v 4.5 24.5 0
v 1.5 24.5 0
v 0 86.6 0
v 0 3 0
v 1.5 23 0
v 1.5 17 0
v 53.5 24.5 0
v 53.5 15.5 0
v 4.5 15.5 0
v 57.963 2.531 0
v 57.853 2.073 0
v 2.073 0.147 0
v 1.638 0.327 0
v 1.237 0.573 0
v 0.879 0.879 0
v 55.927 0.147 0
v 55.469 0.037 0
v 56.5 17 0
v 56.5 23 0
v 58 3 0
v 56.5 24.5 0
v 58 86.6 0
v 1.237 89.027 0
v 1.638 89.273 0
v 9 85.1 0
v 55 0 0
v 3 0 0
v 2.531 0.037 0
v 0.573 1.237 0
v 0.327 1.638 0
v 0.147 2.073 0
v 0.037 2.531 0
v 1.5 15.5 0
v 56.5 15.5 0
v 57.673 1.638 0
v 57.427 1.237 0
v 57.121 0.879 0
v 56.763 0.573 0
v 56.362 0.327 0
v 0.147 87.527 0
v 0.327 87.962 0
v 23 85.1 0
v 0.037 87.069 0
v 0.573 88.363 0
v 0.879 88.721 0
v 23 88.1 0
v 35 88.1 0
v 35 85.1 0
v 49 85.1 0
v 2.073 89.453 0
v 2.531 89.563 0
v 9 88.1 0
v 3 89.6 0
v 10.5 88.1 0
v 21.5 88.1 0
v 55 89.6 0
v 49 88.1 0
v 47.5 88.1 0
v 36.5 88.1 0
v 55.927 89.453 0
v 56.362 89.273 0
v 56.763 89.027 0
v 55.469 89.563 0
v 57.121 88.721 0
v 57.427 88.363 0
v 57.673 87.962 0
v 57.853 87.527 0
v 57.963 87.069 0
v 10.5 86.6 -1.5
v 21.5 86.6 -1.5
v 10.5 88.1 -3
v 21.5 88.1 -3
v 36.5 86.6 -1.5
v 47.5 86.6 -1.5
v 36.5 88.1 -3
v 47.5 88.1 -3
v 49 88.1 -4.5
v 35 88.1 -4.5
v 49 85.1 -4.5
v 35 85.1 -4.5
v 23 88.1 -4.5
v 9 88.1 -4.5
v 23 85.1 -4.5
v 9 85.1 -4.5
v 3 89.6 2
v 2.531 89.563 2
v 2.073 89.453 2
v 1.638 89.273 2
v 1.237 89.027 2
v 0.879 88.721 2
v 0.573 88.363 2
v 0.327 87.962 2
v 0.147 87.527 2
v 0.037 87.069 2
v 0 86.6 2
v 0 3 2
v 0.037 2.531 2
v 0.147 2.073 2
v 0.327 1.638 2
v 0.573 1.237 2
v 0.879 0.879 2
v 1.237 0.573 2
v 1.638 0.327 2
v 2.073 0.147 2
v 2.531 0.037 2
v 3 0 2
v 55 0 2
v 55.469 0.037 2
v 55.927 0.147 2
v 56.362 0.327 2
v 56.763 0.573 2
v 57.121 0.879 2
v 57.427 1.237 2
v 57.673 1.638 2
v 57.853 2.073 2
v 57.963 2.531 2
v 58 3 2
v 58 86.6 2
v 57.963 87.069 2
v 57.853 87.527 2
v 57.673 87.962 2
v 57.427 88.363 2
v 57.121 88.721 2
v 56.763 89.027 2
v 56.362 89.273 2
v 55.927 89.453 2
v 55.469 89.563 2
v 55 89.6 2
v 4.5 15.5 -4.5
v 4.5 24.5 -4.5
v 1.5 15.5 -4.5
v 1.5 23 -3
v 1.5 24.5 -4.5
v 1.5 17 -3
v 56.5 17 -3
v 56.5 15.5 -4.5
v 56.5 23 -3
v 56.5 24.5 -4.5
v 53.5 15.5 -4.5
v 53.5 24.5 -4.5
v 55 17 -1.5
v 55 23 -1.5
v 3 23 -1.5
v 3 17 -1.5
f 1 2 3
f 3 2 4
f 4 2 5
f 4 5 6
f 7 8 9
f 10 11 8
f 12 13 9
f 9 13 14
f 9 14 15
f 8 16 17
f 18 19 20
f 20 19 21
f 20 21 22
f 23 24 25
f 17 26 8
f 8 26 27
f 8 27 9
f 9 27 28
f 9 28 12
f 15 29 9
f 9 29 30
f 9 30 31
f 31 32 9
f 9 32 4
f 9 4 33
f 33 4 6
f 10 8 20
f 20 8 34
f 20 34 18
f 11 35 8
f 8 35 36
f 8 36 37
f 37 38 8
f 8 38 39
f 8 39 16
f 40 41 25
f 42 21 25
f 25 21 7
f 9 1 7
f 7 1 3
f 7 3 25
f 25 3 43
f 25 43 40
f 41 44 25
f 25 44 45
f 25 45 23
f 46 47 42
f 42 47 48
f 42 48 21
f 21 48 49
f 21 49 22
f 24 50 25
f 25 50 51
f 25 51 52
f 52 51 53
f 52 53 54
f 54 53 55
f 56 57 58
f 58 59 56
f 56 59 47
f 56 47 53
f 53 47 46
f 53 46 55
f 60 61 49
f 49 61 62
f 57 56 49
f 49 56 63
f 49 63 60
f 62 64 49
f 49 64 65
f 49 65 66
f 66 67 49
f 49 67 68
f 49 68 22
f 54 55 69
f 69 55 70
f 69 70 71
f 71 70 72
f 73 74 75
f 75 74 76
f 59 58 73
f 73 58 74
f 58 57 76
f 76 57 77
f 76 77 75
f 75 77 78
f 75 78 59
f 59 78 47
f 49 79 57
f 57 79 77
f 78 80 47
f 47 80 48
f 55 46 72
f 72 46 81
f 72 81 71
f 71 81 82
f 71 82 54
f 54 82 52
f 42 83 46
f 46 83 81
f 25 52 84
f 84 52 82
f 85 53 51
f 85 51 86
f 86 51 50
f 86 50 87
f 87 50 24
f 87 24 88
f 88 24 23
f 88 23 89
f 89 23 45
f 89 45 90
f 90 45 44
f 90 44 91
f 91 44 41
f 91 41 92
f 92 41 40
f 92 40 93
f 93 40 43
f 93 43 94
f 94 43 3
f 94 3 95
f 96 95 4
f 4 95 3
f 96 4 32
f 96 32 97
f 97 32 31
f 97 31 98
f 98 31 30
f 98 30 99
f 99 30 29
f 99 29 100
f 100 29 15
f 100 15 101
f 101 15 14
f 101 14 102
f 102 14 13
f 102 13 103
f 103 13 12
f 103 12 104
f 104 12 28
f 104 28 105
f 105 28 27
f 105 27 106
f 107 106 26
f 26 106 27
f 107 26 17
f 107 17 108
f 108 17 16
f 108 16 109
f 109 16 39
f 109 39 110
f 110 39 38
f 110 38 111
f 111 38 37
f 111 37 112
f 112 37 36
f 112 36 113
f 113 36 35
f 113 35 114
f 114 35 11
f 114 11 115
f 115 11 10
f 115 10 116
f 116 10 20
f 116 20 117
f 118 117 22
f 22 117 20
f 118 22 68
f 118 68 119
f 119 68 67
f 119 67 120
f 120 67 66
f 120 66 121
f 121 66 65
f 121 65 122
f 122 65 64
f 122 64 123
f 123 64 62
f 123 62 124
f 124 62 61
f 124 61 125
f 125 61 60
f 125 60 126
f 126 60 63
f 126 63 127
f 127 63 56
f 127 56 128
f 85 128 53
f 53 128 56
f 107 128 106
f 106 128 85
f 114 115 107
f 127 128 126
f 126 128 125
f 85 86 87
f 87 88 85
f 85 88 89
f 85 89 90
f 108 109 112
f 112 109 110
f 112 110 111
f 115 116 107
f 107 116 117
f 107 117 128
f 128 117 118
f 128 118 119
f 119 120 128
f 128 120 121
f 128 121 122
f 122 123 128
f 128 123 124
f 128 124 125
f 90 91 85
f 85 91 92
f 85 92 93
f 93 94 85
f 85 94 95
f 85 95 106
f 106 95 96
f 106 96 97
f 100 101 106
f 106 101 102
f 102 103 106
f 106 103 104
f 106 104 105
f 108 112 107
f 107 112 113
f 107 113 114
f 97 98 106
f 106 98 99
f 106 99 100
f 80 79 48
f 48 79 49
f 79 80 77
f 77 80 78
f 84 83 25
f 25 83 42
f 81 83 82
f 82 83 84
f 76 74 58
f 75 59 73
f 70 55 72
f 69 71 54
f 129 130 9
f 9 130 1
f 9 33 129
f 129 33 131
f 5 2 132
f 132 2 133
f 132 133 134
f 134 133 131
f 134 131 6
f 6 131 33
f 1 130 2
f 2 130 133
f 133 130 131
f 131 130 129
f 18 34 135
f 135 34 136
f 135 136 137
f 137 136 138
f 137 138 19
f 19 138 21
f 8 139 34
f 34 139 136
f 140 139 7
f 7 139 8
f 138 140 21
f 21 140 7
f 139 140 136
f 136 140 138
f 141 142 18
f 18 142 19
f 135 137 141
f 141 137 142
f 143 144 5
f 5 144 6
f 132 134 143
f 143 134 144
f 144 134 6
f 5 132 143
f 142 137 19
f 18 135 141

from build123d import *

# Parameters (mm, degrees)
EXTRUDE_1_DEPTH     = 2
SKETCH_4_W          = 11
SKETCH_4_H          = 1.5
EXTRUDE_3_DEPTH     = 4.5
CUT_EXTRUDE_3_DEPTH = 60
SKETCH_6_W          = 1.5
SKETCH_6_H          = 1.5
EXTRUDE_4_DEPTH     = 1.5
SKETCH_8_W          = 1.5
SKETCH_8_H          = 6
EXTRUDE_5_DEPTH     = 4.5
CUT_EXTRUDE_4_DEPTH = 20
SKETCH_12_W         = 1.5
SKETCH_12_H         = 1.5
EXTRUDE_7_DEPTH     = 1.5
SKETCH_13_W         = 1.5
SKETCH_13_H         = 1.5
EXTRUDE_8_DEPTH     = 1.5


with BuildPart() as part:
    # 草图2 → 凸台-拉伸1 (new body)
    with BuildSketch(Plane.XY):
        with BuildLine():
            Line((0, 86.6), (0, 3))
            ThreePointArc((0, 3), (0.878679656, 0.878679656), (3, 0))
            Line((3, 0), (55, 0))
            ThreePointArc((55, 0), (57.121320344, 0.878679656), (58, 3))
            Line((58, 3), (58, 86.6))
            ThreePointArc((58, 86.6), (57.121320344, 88.721320344), (55, 89.6))
            Line((55, 89.6), (3, 89.6))
            ThreePointArc((3, 89.6), (0.878679656, 88.721320344), (0, 86.6))
        make_face()
    extrude(amount=EXTRUDE_1_DEPTH)

    # 草图4 → 凸台-拉伸3 (add)
    with BuildSketch(Plane(origin=(0, 0, 0), x_dir=(-1, 0, 0), z_dir=(0, 0, -1))):
        Polygon((-35, 85.1), (-35, 88.1), (-36.5, 88.1), (-36.5, 86.6), (-47.5, 86.6), (-47.5, 88.1), (-49, 88.1), (-49, 85.1), align=None)
        Polygon((-21.5, 88.1), (-10.5, 88.1), (-9, 88.1), (-9, 85.1), (-23, 85.1), (-23, 88.1), align=None)
        with Locations((-42, 87.35)):
            Rectangle(SKETCH_4_W, SKETCH_4_H)
    extrude(amount=EXTRUDE_3_DEPTH)

    # 草图5 → 切除-拉伸3 (cut)
    with BuildSketch(Plane(origin=(49, 0, 0), x_dir=(0, 0, -1), z_dir=(1, 0, 0))):
        Polygon((1.5, 88.1), (1.5, 86.6), (3, 88.1), align=None)
        Polygon((0, 88.1), (1.5, 86.6), (1.5, 88.1), align=None)
    extrude(amount=-CUT_EXTRUDE_3_DEPTH, mode=Mode.SUBTRACT)

    # 草图6 → 凸台-拉伸4 (add)
    with BuildSketch(Plane(origin=(0, 88.1, 0), x_dir=(1, 0, 0), z_dir=(0, 1, 0))):
        Polygon((9, 0), (10.5, 0), (10.5, 4.5), (9, 4.5), (9, 3), (9, 1.5), align=None)
        Polygon((21.5, 0), (23, 0), (23, 1.5), (23, 3), (23, 4.5), (21.5, 4.5), align=None)
        with Locations((35.75, 3.75)):
            Rectangle(SKETCH_6_W, SKETCH_6_H)
        Polygon((36.5, 3), (35, 3), (35, 1.5), (35, 0), (36.5, 0), align=None)
        Polygon((49, 3), (47.5, 3), (47.5, 0), (49, 0), (49, 1.5), align=None)
        with Locations((48.25, 3.75)):
            Rectangle(SKETCH_6_W, SKETCH_6_H)
    extrude(amount=-EXTRUDE_4_DEPTH)

    # 草图8 → 凸台-拉伸5 (add)
    with BuildSketch(Plane(origin=(0, 0, 0), x_dir=(-1, 0, 0), z_dir=(0, 0, -1))):
        Polygon((-53.5, 24.5), (-56.5, 24.5), (-56.5, 23), (-55, 23), (-55, 17), (-56.5, 17), (-56.5, 15.5), (-53.5, 15.5), align=None)
        with Locations((-55.75, 20)):
            Rectangle(SKETCH_8_W, SKETCH_8_H)
        Polygon((-4.5, 15.5), (-4.5, 24.5), (-1.5, 24.5), (-1.5, 23), (-1.5, 17), (-1.5, 15.5), align=None)
    extrude(amount=EXTRUDE_5_DEPTH)

    # 草图9 → 切除-拉伸4 (cut)
    with BuildSketch(Plane.XZ.offset(-15.5)):
        Polygon((1.5, -3), (3, -1.5), (1.5, 0), align=None)
        Polygon((56.5, -3), (56.5, 0), (55, -1.5), align=None)
    extrude(amount=-CUT_EXTRUDE_4_DEPTH, mode=Mode.SUBTRACT)

    # 草图12 → 凸台-拉伸7 (add)
    with BuildSketch(Plane.ZY.offset(-1.5)):
        Polygon((0, 23), (0, 24.5), (-1.5, 24.5), (-3, 24.5), (-3, 23), align=None)
        Polygon((0, 15.5), (0, 17), (-3, 17), (-3, 15.5), (-1.5, 15.5), align=None)
        with Locations((-3.75, 23.75)):
            Rectangle(SKETCH_12_W, SKETCH_12_H)
        with Locations((-3.75, 16.25)):
            Rectangle(SKETCH_12_W, SKETCH_12_H)
    extrude(amount=-EXTRUDE_7_DEPTH)

    # 草图13 → 凸台-拉伸8 (add)
    with BuildSketch(Plane(origin=(56.5, 0, 0), x_dir=(0, 0, -1), z_dir=(1, 0, 0))):
        with Locations((3.75, 16.25)):
            Rectangle(SKETCH_13_W, SKETCH_13_H)
        Polygon((3, 17), (0, 17), (0, 15.5), (1.5, 15.5), (3, 15.5), align=None)
        with Locations((3.75, 23.75)):
            Rectangle(SKETCH_13_W, SKETCH_13_H)
        Polygon((1.5, 24.5), (0, 24.5), (0, 23), (3, 23), (3, 24.5), align=None)
    extrude(amount=-EXTRUDE_8_DEPTH)


solid = part.part
